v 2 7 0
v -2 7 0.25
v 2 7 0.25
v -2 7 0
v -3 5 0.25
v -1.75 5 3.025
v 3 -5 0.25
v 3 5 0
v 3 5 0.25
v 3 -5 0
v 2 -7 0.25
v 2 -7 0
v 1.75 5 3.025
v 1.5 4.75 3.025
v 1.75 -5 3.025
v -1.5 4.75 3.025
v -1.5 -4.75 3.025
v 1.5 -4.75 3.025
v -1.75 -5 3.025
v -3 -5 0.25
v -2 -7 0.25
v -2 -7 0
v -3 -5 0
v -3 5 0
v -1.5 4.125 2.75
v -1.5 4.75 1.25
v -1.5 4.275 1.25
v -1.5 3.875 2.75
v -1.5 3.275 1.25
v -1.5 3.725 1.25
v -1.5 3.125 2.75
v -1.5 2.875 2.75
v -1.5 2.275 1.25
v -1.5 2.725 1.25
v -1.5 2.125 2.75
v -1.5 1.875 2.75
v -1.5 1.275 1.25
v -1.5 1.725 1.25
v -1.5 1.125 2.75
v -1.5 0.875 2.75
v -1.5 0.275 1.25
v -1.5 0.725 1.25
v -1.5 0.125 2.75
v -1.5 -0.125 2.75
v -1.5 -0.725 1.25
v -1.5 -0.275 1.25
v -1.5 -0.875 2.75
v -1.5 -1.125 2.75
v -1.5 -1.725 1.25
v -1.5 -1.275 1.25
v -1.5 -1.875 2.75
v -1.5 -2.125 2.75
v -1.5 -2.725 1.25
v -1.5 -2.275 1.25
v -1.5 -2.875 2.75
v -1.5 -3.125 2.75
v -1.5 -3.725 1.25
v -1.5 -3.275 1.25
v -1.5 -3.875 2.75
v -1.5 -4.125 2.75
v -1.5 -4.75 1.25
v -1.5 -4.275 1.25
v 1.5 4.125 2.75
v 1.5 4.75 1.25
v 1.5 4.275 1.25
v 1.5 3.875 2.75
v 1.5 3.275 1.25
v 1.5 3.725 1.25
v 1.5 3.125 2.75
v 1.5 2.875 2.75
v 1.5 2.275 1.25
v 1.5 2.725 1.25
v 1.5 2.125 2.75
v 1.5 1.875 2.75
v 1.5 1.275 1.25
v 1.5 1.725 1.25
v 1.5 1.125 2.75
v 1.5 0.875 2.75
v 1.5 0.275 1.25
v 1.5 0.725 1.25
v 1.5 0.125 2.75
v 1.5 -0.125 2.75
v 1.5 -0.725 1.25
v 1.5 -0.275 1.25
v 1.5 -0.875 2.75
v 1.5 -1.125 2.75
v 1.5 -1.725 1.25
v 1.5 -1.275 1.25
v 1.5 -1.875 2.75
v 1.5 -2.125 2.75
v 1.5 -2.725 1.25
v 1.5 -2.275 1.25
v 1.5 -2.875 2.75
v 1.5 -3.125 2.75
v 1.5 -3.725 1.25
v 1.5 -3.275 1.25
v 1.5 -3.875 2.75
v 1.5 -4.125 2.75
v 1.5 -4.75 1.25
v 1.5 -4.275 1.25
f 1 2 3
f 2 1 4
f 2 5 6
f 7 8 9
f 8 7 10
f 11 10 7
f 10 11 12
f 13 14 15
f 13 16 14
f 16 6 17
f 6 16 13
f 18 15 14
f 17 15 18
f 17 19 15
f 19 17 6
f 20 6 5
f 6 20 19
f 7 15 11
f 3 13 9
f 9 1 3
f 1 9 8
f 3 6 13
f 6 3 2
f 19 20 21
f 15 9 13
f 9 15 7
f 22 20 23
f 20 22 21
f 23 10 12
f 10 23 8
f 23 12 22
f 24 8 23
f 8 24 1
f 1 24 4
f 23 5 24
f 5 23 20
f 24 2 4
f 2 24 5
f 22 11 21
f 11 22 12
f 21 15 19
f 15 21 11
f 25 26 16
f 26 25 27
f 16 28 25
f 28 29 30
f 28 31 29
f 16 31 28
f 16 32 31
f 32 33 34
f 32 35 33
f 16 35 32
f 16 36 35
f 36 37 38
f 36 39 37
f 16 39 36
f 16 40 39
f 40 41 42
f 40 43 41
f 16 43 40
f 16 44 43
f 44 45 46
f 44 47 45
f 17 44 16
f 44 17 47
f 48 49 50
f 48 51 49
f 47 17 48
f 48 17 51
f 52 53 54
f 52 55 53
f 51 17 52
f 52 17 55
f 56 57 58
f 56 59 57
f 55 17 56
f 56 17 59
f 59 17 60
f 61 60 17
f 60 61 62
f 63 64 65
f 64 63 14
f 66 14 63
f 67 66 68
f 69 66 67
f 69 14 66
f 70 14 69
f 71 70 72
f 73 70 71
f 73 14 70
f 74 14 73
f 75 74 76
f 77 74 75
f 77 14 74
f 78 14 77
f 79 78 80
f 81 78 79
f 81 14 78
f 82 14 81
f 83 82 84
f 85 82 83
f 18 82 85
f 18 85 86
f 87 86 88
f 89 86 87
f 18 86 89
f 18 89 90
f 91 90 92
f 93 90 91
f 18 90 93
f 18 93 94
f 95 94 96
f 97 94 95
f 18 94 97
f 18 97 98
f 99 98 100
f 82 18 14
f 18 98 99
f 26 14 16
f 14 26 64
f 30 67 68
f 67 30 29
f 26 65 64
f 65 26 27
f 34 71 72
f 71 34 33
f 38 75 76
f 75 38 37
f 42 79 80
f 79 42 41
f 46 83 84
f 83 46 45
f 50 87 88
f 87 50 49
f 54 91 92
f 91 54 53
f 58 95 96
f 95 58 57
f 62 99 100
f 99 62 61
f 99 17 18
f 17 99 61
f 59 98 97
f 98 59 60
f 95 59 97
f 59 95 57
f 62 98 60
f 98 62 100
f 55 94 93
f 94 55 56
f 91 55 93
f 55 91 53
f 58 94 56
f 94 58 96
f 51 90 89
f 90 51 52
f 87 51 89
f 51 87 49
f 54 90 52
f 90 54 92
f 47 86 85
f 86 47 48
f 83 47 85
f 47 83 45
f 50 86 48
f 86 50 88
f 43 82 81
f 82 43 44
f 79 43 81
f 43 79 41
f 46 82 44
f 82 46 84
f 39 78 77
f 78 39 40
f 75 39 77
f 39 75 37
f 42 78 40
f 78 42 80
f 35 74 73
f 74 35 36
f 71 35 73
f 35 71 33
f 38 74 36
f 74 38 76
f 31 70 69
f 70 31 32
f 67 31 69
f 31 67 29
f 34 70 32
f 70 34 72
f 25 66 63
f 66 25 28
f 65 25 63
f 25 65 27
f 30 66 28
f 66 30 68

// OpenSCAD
px=3; //横幅のx軸の座標
cube_basic_x=px+0.5; //ダクト内部の厚み
cube_basic_y=10; //全長
py=cube_basic_y/2; //横幅のy軸の頂点
px2=2; //縦幅のx軸の頂点
py2=py+2; //縦幅のy軸の頂点
fy=py-1; //フィン部分のy軸座標

//cubeの基本部分
module cube_basic(tx, ty, tz, cx, cy, cz){
	translate([tx, ty, tz]){
		cube(size=[cx, cy, cz], center=true);
	}	
}

//本体
difference(){
	//土台部分
	hull(){
		cube_basic(0, 0, 3, cube_basic_x, cube_basic_y, 0.05);
	    linear_extrude(0.25){
			polygon(points=[[-px, py], [-px2, py2], [px2, py2], [px, py], [px, -py], [px2, -py2], [-px2, -py2], [-px, -py]]); //時計回り
		}
	}
	//空洞部分
	cube_basic(0, 0, 3, px, cube_basic_y-0.5, 3.5);
}

//フィン部分
for(y=[-fy:1:fy]){
	hull(){
		cube_basic(0, y, 2.5, px, 0.25, 0.5); //上部
		cube_basic(0, y, 1.0, px, 0.55, 0.5); //下部
	}
}
